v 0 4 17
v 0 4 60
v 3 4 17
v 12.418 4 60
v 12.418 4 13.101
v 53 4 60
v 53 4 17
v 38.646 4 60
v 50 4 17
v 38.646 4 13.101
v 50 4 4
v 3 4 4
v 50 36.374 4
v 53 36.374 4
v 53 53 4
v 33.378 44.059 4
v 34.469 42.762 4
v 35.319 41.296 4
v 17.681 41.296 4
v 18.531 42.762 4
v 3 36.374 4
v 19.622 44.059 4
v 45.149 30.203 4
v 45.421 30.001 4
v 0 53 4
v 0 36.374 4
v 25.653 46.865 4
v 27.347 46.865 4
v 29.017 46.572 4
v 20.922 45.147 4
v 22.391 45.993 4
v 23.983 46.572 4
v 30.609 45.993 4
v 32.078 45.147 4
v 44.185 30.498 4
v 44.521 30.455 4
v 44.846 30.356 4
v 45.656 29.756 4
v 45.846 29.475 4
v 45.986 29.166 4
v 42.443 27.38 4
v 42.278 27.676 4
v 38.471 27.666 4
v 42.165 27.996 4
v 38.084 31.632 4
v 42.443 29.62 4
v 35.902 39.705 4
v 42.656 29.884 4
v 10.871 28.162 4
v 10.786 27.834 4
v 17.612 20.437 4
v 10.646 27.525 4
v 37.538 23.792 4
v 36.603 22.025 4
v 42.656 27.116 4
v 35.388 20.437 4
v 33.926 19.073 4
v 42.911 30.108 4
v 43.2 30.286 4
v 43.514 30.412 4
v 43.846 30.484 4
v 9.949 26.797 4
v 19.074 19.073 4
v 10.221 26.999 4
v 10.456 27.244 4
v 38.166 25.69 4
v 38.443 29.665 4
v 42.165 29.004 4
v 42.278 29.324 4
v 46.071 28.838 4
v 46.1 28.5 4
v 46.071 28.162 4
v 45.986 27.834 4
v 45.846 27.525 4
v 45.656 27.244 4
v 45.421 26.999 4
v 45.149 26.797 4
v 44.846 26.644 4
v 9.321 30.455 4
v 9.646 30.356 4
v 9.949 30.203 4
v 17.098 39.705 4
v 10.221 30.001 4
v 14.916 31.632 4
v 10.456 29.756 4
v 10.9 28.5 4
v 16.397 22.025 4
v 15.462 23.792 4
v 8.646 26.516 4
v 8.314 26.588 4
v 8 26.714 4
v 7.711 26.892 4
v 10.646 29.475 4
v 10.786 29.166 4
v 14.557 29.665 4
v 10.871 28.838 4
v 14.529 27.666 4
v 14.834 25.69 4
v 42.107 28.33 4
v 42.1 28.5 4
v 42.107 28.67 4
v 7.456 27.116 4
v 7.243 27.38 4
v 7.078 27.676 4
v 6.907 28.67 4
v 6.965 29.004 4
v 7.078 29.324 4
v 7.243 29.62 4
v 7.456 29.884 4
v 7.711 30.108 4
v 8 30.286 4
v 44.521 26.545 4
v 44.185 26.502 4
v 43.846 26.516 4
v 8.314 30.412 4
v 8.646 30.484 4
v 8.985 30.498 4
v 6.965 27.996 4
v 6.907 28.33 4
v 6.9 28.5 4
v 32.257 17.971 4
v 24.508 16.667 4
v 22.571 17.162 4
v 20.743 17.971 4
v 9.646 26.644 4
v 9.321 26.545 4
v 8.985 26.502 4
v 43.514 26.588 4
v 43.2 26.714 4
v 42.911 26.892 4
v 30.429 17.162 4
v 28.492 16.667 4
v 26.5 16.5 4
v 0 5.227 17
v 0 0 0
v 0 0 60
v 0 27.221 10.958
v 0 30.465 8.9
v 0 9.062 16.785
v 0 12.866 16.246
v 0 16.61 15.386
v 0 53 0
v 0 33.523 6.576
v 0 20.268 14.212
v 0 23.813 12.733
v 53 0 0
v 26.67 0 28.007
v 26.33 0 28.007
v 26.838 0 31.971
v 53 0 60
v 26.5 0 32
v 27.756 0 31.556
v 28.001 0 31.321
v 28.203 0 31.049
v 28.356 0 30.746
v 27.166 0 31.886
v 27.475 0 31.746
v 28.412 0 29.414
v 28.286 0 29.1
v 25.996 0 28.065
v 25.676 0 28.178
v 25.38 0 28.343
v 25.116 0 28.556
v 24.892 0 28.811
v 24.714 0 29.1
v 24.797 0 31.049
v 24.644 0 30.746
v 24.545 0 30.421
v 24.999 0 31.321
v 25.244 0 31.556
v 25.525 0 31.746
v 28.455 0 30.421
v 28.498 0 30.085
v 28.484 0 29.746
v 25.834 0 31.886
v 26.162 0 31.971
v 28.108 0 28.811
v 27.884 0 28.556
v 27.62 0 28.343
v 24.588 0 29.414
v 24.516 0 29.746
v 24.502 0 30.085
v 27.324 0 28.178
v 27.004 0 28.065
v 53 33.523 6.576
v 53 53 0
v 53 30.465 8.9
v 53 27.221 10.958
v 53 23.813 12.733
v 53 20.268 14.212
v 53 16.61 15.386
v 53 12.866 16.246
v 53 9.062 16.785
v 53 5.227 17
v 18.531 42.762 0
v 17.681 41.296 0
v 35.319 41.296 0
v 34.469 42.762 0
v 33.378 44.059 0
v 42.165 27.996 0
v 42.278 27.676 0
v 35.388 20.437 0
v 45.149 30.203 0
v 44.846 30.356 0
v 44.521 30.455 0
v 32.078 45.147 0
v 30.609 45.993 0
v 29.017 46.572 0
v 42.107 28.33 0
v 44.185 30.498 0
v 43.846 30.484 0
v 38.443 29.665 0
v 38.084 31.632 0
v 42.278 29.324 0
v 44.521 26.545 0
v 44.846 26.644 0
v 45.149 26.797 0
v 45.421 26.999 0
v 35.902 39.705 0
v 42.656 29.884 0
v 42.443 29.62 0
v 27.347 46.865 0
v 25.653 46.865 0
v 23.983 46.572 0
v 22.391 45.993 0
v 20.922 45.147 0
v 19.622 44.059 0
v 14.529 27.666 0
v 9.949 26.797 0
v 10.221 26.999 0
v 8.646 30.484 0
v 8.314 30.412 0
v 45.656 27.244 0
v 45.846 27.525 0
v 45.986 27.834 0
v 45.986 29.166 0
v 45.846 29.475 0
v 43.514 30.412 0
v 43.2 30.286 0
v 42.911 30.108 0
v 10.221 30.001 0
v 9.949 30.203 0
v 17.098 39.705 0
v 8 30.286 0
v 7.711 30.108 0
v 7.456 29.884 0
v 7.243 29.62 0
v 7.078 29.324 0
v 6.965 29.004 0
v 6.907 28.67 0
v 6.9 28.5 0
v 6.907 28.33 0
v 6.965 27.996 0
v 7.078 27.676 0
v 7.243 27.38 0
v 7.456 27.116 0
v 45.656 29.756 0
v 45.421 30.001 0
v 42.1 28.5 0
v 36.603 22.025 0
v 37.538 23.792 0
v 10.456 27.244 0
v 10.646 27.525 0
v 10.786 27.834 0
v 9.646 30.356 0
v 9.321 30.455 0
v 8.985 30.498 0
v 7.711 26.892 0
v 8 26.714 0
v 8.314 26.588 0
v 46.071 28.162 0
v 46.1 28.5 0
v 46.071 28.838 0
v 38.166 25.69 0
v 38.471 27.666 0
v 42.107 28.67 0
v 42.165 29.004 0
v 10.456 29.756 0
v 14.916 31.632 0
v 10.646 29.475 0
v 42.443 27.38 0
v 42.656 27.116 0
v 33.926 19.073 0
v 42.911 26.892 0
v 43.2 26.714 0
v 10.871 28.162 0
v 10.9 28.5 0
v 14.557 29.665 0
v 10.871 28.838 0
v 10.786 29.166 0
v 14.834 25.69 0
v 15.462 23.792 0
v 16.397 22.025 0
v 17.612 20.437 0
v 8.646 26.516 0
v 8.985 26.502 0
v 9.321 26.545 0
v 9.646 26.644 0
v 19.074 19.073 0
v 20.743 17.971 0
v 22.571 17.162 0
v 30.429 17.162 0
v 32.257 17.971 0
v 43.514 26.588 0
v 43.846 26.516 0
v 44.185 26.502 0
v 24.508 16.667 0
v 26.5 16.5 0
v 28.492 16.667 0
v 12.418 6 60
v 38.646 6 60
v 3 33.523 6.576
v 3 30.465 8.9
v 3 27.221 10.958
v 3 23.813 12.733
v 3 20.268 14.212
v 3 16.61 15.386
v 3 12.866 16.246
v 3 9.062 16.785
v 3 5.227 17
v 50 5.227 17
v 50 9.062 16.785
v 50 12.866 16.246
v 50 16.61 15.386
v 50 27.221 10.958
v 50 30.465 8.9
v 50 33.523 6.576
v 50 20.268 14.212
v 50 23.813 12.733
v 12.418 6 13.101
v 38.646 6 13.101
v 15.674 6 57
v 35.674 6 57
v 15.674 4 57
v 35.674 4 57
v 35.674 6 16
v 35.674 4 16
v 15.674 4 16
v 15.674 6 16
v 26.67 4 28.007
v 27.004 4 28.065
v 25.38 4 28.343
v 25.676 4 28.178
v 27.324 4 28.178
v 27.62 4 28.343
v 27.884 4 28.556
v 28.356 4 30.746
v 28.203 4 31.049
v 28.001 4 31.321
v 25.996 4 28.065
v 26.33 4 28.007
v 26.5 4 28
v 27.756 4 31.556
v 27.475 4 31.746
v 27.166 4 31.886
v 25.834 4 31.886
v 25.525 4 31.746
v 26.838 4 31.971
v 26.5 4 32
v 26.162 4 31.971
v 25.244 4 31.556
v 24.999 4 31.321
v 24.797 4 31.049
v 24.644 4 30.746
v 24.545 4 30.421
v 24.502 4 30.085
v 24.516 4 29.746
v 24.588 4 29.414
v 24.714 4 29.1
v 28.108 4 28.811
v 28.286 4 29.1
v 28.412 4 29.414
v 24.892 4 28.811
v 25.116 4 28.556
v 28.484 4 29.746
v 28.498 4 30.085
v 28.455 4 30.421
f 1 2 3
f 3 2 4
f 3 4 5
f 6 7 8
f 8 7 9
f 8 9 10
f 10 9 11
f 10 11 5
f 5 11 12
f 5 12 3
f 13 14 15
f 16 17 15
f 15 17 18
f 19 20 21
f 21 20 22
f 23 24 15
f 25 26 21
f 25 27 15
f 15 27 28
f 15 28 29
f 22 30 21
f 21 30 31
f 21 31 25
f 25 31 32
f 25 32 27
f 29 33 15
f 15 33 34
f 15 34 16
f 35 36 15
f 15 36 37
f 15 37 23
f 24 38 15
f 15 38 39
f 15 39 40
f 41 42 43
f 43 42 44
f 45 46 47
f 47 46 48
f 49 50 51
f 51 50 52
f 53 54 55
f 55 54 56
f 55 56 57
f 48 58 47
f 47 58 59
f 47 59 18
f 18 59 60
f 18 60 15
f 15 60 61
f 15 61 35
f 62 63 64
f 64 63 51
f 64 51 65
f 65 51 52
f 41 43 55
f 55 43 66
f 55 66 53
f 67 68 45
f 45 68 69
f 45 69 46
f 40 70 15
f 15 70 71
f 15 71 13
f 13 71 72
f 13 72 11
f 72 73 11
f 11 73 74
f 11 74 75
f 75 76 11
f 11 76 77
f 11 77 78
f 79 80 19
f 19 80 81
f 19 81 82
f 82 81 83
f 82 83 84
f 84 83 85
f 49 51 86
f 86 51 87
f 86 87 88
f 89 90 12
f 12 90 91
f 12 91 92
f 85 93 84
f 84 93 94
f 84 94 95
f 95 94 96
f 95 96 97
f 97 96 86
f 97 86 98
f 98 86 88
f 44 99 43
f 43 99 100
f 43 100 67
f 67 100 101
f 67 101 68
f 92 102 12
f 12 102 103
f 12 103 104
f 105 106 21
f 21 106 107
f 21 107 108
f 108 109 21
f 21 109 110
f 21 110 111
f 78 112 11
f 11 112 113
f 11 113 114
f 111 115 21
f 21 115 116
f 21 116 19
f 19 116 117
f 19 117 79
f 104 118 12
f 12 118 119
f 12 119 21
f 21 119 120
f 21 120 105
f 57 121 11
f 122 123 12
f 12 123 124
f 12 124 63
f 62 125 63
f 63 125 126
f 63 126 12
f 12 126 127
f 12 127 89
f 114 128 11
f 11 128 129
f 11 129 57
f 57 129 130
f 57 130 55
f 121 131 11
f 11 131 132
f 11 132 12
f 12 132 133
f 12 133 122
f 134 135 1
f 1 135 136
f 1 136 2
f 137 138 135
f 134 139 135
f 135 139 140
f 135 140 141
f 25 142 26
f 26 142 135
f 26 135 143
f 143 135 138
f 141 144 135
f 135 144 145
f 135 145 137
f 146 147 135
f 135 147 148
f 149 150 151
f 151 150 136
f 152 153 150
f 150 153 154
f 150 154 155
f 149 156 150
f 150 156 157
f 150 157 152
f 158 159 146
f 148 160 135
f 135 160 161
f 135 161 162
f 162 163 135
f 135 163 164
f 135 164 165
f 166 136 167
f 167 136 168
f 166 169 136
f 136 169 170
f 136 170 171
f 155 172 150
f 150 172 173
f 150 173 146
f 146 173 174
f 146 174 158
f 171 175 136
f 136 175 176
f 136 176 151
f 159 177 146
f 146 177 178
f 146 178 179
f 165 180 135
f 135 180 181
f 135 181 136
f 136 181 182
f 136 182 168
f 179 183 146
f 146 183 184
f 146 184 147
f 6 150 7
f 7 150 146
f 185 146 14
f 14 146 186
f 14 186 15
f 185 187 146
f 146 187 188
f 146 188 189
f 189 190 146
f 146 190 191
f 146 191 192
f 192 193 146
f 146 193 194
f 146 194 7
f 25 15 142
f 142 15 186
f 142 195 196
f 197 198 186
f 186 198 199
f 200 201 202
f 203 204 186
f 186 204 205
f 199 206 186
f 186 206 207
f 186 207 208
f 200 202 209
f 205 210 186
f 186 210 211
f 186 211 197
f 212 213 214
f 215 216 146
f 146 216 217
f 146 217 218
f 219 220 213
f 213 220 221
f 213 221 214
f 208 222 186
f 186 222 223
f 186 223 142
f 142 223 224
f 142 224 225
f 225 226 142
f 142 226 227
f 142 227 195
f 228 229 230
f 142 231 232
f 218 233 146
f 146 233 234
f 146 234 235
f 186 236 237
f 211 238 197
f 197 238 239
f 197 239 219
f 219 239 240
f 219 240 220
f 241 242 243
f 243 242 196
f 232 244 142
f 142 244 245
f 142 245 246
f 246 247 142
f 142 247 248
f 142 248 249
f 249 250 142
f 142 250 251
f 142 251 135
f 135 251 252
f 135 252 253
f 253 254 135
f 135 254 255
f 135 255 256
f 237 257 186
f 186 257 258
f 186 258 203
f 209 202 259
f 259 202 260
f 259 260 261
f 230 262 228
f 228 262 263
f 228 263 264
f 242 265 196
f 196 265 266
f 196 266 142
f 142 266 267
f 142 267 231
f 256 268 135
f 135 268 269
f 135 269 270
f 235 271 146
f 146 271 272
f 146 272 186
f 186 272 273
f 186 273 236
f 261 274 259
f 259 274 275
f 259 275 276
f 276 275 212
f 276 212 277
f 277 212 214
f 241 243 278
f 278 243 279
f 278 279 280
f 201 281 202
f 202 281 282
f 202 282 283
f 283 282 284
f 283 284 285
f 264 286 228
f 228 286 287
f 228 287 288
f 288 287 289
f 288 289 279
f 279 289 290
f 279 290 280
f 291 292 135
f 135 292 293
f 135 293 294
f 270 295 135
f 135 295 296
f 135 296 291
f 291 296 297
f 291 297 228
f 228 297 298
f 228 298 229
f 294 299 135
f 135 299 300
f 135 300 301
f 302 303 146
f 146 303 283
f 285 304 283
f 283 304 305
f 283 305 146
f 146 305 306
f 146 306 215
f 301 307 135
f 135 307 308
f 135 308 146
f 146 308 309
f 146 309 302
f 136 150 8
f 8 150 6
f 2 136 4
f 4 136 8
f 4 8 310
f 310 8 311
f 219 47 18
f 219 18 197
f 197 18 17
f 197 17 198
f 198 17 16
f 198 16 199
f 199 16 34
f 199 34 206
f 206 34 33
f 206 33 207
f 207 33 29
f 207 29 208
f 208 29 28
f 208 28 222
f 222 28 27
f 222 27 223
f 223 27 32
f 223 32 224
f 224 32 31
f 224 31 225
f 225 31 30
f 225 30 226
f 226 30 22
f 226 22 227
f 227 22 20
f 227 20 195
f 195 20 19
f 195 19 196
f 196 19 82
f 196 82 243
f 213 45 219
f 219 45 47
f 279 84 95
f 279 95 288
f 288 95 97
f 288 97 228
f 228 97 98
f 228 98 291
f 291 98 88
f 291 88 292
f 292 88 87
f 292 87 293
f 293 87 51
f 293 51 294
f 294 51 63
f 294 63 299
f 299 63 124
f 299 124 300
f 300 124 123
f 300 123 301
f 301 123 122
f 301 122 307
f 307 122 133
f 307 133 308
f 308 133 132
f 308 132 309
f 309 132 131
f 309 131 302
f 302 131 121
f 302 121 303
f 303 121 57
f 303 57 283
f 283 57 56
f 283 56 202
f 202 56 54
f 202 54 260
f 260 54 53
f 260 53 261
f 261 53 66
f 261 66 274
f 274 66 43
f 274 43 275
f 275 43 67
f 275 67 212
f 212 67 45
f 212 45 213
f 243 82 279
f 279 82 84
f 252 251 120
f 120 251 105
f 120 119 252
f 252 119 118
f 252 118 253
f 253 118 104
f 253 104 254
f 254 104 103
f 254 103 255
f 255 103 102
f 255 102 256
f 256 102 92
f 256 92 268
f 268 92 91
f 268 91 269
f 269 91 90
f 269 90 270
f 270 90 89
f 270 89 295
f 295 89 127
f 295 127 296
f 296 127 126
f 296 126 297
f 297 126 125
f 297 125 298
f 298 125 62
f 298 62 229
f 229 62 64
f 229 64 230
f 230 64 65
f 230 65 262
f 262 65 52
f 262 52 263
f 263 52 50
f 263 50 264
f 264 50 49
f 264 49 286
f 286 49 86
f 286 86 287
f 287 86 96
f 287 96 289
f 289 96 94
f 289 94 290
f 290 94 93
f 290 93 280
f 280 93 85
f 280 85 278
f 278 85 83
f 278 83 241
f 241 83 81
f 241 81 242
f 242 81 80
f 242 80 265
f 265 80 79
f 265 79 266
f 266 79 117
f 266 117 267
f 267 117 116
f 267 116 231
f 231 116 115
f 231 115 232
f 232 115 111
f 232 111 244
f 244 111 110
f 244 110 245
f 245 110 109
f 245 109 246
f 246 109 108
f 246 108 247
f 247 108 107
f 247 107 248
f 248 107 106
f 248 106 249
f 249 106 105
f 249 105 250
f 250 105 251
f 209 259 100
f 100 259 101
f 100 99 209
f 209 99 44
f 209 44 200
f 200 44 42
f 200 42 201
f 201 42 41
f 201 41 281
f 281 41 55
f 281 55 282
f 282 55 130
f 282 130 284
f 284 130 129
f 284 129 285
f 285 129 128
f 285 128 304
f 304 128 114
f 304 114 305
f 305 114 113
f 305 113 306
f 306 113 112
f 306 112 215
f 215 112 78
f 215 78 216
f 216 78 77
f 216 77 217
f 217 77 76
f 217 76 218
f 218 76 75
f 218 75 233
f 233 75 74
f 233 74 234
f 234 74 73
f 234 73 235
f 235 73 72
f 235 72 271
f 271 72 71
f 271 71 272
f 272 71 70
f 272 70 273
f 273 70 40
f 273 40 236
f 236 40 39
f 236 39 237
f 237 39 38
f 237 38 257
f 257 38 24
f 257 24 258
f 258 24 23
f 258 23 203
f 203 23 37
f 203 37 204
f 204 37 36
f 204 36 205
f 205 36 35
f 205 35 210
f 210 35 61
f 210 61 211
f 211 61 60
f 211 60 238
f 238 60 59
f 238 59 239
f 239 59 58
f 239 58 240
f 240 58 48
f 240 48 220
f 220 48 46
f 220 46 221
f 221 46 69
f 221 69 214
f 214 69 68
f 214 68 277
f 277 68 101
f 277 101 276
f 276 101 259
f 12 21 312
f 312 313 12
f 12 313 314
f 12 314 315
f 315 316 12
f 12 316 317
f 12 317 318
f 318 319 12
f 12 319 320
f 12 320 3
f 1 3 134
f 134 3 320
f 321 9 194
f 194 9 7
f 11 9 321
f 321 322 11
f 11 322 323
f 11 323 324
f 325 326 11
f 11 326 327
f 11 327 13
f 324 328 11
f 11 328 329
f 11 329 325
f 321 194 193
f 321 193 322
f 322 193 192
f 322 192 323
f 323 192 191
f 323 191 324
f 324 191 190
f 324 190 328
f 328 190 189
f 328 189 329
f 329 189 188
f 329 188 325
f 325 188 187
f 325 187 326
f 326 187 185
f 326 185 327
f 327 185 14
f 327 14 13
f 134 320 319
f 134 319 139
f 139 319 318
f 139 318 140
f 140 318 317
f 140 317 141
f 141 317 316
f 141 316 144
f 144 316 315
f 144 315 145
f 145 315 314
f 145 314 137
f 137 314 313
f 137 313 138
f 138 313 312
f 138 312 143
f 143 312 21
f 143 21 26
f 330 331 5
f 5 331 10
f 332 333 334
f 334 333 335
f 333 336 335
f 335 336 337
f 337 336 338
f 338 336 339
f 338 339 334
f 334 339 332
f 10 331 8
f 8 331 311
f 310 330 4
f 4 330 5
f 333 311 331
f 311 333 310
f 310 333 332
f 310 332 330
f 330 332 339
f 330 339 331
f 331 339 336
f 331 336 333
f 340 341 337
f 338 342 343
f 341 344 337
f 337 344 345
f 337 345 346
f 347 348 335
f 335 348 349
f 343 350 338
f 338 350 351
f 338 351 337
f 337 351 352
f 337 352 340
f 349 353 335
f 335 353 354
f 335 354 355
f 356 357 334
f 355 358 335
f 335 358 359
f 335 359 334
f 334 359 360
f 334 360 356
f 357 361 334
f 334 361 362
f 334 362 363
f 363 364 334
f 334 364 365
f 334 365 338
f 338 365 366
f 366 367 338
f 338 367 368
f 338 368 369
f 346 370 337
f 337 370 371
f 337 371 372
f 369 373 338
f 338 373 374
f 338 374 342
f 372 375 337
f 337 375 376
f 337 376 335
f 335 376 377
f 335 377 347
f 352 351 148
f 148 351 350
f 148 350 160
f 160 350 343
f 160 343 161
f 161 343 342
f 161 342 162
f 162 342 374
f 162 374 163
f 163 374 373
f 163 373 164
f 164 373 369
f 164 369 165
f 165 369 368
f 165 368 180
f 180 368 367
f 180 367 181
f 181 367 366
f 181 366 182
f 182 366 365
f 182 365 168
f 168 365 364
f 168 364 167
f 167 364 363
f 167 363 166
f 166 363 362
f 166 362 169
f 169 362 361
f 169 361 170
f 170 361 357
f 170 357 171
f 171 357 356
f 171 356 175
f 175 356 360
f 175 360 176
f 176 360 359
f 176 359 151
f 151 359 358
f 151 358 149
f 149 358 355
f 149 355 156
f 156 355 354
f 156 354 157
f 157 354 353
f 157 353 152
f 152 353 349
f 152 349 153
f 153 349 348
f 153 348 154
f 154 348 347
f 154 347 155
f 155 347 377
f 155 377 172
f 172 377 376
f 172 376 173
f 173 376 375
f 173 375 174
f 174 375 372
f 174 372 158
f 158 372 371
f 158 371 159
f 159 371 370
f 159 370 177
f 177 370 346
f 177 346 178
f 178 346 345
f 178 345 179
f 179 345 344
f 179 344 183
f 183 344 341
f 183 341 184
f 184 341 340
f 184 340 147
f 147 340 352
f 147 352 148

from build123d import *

# Parameters (mm, degrees)
ESBO_O1_W                  = 53
ESBO_O1_H                  = 53
RESSALTO_EXTRUS_O1_DEPTH   = 4
ESBO_O2_W                  = 53
ESBO_O2_H                  = 4
RESSALTO_EXTRUS_O2_DEPTH   = 60
CORTE_EXTRUS_O1_DEPTH      = 21
CORTE_EXTRUS_O1_DEPTH_BACK = 18
CORTE_EXTRUS_O2_DEPTH      = 17
CORTE_EXTRUS_O2_DEPTH_BACK = 15
ESBO_O4_R                  = 2
ESBO_O5_W                  = 3
ESBO_O5_H                  = 36.373853852
RESSALTO_EXTRUS_O3_DEPTH   = 17
CORTE_EXTRUS_O3_DEPTH      = 62
CORTE_EXTRUS_O3_DEPTH_BACK = 15
ESBO_O7_W                  = 26.228570329
ESBO_O7_H                  = 46.898944641
ESBO_O7_W_2                = 20
ESBO_O7_H_2                = 41
RESSALTO_EXTRUS_O4_DEPTH   = 6
CORTE_EXTRUS_O4_DEPTH      = 10
CORTE_EXTRUS_O4_DEPTH_BACK = 21
ESBO_O8_R                  = 2


with BuildPart() as part:
    # Esboço1 → Ressalto-extrusão1 (new body)
    with BuildSketch(Plane.XY):
        with Locations((26.5, 26.5)):
            Rectangle(ESBO_O1_W, ESBO_O1_H)
    extrude(amount=RESSALTO_EXTRUS_O1_DEPTH)

    # Esboço2 → Ressalto-extrusão2 (add)
    with BuildSketch(Plane.XY):
        with Locations((26.5, 2)):
            Rectangle(ESBO_O2_W, ESBO_O2_H)
    extrude(amount=RESSALTO_EXTRUS_O2_DEPTH)

    # Esboço3 → Corte-extrusão1 (cut, two sides: drawn at the far end of the back side and taken through both)
    with BuildSketch(Plane.XY.offset(-CORTE_EXTRUS_O1_DEPTH_BACK)):
        with BuildLine():
            Line((17.098198891, 39.704586726), (14.91581435, 31.631555975))
            ThreePointArc((14.91581435, 31.631555975), (26.5, 16.5), (38.08418565, 31.631555975))
            Line((38.08418565, 31.631555975), (35.901801109, 39.704586726))
            ThreePointArc((35.901801109, 39.704586726), (26.5, 46.902274107), (17.098198891, 39.704586726))
        make_face()
    extrude(amount=CORTE_EXTRUS_O1_DEPTH + CORTE_EXTRUS_O1_DEPTH_BACK, mode=Mode.SUBTRACT)

    # Esboço4 → Corte-extrusão2 (cut, two sides: drawn at the far end of the back side and taken through both)
    with BuildSketch(Plane.XY.offset(-CORTE_EXTRUS_O2_DEPTH_BACK)):
        with Locations((8.9, 28.5)):
            Circle(ESBO_O4_R)
        with Locations((44.1, 28.5)):
            Circle(ESBO_O4_R)
    extrude(amount=CORTE_EXTRUS_O2_DEPTH + CORTE_EXTRUS_O2_DEPTH_BACK, mode=Mode.SUBTRACT)

    # Esboço5 → Ressalto-extrusão3 (add)
    with BuildSketch(Plane.XY):
        with Locations((1.5, 18.186926926)):
            Rectangle(ESBO_O5_W, ESBO_O5_H)
        with Locations((51.5, 18.186926926)):
            Rectangle(ESBO_O5_W, ESBO_O5_H)
    extrude(amount=RESSALTO_EXTRUS_O3_DEPTH)

    # Esboço6 → Corte-extrusão3 (cut, two sides: drawn at the far end of the back side and taken through both)
    with BuildSketch(Plane(origin=(0, 0, 0), x_dir=(0, 0, -1), z_dir=(1, 0, 0)).offset(-CORTE_EXTRUS_O3_DEPTH_BACK)):
        with BuildLine():
            ThreePointArc((-17, 5.226597996), (-13.510052949, 22.056538471), (-4, 36.373853852))
            Line((-4, 36.373853852), (-17, 36.373853852))
            Line((-17, 36.373853852), (-17, 5.226597996))
        make_face()
    extrude(amount=CORTE_EXTRUS_O3_DEPTH + CORTE_EXTRUS_O3_DEPTH_BACK, mode=Mode.SUBTRACT)

    # Esboço7 → Ressalto-extrusão4 (add)
    with BuildSketch(Plane(origin=(0, 0, 0), x_dir=(1, 0, 0), z_dir=(0, 1, 0))):
        with Locations((25.531831297, -36.55052768)):
            Rectangle(ESBO_O7_W, ESBO_O7_H)
        with Locations((25.674113589, -36.5)):
            Rectangle(ESBO_O7_W_2, ESBO_O7_H_2, mode=Mode.SUBTRACT)
    extrude(amount=RESSALTO_EXTRUS_O4_DEPTH)

    # Esboço8 → Corte-extrusão4 (cut, two sides: drawn at the far end of the back side and taken through both)
    with BuildSketch(Plane(origin=(0, 0, 0), x_dir=(1, 0, 0), z_dir=(0, 1, 0)).offset(-CORTE_EXTRUS_O4_DEPTH_BACK)):
        with Locations((26.5, -30)):
            Circle(ESBO_O8_R)
    extrude(amount=CORTE_EXTRUS_O4_DEPTH + CORTE_EXTRUS_O4_DEPTH_BACK, mode=Mode.SUBTRACT)


solid = part.part
